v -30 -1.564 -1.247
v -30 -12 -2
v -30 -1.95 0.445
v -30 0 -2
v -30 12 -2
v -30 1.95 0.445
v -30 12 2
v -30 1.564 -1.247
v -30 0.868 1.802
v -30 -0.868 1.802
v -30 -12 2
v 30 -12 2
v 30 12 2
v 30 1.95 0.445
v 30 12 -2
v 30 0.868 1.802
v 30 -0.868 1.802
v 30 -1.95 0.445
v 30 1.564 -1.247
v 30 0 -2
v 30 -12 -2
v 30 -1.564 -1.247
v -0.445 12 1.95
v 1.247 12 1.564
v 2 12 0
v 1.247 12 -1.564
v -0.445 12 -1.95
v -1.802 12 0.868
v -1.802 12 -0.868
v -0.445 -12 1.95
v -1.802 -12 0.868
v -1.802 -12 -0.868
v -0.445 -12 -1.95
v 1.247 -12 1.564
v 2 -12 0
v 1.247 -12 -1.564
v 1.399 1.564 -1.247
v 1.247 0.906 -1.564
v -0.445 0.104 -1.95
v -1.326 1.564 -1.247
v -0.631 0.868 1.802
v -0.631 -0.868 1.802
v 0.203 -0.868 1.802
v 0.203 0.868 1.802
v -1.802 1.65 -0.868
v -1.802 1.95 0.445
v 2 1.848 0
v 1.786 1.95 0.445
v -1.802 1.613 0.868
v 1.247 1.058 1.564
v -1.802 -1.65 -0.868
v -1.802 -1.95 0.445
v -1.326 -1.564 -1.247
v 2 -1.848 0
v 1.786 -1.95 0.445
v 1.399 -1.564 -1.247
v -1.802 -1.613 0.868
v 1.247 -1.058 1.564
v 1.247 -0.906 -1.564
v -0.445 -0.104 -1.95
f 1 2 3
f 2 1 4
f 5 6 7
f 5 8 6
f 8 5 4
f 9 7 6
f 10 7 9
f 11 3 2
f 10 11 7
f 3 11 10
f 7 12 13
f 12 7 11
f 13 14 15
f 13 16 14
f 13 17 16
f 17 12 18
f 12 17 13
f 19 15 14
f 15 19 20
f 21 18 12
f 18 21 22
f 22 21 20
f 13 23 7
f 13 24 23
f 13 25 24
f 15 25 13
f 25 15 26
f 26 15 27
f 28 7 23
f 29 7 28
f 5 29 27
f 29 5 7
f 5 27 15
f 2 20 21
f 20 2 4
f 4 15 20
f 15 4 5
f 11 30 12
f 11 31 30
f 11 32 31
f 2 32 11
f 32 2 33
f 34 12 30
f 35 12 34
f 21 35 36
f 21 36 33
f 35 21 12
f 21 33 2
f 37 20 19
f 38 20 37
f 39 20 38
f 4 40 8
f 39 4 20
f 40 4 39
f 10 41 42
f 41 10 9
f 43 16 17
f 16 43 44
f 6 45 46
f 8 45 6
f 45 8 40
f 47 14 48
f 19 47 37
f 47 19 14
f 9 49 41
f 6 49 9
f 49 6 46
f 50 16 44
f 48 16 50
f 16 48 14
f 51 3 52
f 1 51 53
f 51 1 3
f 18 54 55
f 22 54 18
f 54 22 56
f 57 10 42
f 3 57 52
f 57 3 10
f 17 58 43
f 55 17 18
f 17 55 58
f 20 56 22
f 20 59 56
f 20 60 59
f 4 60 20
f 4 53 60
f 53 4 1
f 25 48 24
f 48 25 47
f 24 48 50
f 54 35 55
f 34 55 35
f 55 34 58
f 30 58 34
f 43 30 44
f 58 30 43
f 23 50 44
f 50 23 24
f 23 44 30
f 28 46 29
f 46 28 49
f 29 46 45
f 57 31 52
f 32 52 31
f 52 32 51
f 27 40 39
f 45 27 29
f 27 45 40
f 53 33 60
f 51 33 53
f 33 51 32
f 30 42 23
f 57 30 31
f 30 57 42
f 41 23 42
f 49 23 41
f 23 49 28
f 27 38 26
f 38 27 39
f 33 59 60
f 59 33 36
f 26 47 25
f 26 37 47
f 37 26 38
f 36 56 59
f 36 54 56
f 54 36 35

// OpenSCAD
// Rectangular plate with cylindrical holes
// Dimensions: 60 mm along X, 24 mm along Y, 4 mm thick, centered at origin

// Main plate
difference() {
    // Base rectangular plate
    cube([60, 24, 4], center = true);
    
    // First cylindrical hole along X axis
    translate([0, 0, 0])
        rotate([0, 90, 0])
            cylinder(h = 62, d = 4, center = true);
    
    // Second cylindrical hole along Y axis
    translate([0, 0, 0])
        rotate([90, 0, 0])
            cylinder(h = 24, d = 4, center = true);
}
